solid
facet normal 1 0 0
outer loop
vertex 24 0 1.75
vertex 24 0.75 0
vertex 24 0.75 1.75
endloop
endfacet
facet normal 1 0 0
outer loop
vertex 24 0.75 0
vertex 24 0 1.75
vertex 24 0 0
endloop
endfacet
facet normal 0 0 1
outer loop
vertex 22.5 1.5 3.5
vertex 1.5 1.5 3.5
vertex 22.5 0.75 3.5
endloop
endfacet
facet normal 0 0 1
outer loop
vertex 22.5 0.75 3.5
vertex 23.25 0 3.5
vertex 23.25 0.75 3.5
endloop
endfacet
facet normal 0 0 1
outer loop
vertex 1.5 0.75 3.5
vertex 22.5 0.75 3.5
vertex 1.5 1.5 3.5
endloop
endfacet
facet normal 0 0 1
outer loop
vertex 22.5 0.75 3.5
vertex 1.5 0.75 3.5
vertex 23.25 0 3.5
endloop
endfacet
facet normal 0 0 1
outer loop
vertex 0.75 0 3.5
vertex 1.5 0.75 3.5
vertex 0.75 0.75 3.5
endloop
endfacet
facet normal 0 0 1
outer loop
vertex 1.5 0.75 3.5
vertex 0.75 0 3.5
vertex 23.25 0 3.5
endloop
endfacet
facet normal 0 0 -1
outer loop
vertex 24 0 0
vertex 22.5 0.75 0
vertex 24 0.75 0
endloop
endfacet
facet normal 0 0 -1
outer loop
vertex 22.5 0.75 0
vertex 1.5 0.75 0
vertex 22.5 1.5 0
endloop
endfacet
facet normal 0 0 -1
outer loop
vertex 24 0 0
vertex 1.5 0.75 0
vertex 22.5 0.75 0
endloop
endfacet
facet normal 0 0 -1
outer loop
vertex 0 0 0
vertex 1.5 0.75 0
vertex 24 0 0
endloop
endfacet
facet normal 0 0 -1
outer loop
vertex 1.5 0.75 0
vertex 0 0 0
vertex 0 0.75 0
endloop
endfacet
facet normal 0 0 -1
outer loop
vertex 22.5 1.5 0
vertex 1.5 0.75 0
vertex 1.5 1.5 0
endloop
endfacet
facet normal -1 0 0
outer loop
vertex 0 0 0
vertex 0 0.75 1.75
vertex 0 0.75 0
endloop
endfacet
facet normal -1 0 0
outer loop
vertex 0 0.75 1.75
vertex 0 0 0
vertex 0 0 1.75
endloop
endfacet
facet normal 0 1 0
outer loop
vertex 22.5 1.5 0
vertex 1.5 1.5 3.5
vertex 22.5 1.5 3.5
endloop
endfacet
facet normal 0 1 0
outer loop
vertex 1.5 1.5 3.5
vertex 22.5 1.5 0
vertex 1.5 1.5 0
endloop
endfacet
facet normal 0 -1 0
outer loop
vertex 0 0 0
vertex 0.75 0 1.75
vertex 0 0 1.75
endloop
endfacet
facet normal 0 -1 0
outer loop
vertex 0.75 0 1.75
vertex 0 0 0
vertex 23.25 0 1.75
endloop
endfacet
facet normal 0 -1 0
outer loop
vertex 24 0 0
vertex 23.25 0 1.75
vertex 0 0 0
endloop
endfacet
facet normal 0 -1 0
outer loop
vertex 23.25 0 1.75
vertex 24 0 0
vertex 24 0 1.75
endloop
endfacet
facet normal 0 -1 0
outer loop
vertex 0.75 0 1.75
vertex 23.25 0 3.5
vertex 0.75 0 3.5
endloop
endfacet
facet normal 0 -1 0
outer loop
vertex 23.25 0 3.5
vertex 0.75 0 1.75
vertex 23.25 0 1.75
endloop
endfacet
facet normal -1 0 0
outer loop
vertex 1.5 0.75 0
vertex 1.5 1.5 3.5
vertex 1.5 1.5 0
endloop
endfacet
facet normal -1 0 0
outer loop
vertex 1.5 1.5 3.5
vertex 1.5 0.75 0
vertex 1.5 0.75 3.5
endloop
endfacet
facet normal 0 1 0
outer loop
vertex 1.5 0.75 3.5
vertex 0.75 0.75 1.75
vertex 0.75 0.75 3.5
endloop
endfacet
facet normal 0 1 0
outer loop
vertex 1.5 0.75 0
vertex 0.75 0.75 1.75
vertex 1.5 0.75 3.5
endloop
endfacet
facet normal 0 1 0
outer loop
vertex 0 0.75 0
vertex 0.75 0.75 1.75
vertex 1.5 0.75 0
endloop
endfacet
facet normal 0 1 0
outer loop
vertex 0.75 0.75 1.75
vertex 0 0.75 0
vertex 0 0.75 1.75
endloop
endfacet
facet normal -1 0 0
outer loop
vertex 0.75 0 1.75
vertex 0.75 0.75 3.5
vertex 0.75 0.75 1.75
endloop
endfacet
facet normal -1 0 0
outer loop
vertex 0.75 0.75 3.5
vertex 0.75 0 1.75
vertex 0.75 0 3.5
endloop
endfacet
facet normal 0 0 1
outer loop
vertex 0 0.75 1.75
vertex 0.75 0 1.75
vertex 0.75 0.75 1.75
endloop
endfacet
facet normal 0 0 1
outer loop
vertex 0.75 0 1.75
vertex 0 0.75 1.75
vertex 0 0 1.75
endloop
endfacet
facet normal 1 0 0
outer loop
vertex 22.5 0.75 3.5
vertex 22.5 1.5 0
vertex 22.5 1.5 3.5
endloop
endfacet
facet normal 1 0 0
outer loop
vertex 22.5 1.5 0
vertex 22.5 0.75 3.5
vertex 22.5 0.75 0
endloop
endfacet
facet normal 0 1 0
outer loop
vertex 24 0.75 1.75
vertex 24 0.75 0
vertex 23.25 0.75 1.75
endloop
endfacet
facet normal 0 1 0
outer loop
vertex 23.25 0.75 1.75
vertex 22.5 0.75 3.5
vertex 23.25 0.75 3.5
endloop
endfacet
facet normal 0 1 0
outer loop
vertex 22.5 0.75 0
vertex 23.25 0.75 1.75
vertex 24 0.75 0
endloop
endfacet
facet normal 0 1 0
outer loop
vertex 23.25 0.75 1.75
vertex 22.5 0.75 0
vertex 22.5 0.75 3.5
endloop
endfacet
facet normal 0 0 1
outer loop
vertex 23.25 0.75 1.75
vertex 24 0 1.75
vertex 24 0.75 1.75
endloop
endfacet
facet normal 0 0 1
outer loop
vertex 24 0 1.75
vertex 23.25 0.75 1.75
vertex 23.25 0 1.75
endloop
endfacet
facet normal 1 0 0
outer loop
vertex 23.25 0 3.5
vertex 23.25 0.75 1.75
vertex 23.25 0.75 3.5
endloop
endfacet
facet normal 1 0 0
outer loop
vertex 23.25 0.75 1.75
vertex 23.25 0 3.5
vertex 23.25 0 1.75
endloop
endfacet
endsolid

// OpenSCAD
// file: ../config.scad
// height of desktop and shelves
desktop_shelf_color="Sienna";
desktop_height=31;
desktop_thickness=1;
table_width=96;
table_depth=36;
shelf_thickness=0.5;
shelf_height=10;
top_shelf_height=72.5;

// Legs
leg_color="BurlyWood";
front_leg_length=desktop_height;
rear_leg_length=top_shelf_height-shelf_thickness;
leg_timber_width=1.5;
leg_timber_depth=3.5;
center_leg_timber_width=1.5;
center_leg_timber_depth=3.5;
center_leg_setback=24;

// Plates
front_rear_strut_color="silver";
side_strut_color="blue";
strut_timber_depth=1.5;
strut_timber_height=3.5;
top_shelf_timber_depth=1.5;
top_shelf_timber_height=3.5;
// file: ../components/short_horizontal_plate.scad
module short_horizontal_plate()
{
    include <../config.scad>
    plate_length = table_width / 4;
    render() { // see note in README about rendering
        difference() {
            cube([plate_length,strut_timber_depth,strut_timber_height],false);

            // Left cutout
            translate([0,leg_timber_width/2,0])
            {
                cube([leg_timber_width,leg_timber_width/2,strut_timber_height],false);
            }
            // Left top cutout
            translate([0,0,strut_timber_height/2]){
                cube([leg_timber_width/2,leg_timber_width/2,strut_timber_height/2]);
            }
            // Right cutout
            translate([plate_length-leg_timber_width,leg_timber_width/2,0])
            {
                cube([leg_timber_width,leg_timber_width/2,strut_timber_height],false);
            }
            // Right top cutout
            translate([plate_length-(leg_timber_width/2),0,strut_timber_height/2]){
                cube([leg_timber_width/2,leg_timber_width/2,strut_timber_height/2]);
            }
        }
    }
}
// main file
use <../components/short_horizontal_plate.scad>

short_horizontal_plate();
